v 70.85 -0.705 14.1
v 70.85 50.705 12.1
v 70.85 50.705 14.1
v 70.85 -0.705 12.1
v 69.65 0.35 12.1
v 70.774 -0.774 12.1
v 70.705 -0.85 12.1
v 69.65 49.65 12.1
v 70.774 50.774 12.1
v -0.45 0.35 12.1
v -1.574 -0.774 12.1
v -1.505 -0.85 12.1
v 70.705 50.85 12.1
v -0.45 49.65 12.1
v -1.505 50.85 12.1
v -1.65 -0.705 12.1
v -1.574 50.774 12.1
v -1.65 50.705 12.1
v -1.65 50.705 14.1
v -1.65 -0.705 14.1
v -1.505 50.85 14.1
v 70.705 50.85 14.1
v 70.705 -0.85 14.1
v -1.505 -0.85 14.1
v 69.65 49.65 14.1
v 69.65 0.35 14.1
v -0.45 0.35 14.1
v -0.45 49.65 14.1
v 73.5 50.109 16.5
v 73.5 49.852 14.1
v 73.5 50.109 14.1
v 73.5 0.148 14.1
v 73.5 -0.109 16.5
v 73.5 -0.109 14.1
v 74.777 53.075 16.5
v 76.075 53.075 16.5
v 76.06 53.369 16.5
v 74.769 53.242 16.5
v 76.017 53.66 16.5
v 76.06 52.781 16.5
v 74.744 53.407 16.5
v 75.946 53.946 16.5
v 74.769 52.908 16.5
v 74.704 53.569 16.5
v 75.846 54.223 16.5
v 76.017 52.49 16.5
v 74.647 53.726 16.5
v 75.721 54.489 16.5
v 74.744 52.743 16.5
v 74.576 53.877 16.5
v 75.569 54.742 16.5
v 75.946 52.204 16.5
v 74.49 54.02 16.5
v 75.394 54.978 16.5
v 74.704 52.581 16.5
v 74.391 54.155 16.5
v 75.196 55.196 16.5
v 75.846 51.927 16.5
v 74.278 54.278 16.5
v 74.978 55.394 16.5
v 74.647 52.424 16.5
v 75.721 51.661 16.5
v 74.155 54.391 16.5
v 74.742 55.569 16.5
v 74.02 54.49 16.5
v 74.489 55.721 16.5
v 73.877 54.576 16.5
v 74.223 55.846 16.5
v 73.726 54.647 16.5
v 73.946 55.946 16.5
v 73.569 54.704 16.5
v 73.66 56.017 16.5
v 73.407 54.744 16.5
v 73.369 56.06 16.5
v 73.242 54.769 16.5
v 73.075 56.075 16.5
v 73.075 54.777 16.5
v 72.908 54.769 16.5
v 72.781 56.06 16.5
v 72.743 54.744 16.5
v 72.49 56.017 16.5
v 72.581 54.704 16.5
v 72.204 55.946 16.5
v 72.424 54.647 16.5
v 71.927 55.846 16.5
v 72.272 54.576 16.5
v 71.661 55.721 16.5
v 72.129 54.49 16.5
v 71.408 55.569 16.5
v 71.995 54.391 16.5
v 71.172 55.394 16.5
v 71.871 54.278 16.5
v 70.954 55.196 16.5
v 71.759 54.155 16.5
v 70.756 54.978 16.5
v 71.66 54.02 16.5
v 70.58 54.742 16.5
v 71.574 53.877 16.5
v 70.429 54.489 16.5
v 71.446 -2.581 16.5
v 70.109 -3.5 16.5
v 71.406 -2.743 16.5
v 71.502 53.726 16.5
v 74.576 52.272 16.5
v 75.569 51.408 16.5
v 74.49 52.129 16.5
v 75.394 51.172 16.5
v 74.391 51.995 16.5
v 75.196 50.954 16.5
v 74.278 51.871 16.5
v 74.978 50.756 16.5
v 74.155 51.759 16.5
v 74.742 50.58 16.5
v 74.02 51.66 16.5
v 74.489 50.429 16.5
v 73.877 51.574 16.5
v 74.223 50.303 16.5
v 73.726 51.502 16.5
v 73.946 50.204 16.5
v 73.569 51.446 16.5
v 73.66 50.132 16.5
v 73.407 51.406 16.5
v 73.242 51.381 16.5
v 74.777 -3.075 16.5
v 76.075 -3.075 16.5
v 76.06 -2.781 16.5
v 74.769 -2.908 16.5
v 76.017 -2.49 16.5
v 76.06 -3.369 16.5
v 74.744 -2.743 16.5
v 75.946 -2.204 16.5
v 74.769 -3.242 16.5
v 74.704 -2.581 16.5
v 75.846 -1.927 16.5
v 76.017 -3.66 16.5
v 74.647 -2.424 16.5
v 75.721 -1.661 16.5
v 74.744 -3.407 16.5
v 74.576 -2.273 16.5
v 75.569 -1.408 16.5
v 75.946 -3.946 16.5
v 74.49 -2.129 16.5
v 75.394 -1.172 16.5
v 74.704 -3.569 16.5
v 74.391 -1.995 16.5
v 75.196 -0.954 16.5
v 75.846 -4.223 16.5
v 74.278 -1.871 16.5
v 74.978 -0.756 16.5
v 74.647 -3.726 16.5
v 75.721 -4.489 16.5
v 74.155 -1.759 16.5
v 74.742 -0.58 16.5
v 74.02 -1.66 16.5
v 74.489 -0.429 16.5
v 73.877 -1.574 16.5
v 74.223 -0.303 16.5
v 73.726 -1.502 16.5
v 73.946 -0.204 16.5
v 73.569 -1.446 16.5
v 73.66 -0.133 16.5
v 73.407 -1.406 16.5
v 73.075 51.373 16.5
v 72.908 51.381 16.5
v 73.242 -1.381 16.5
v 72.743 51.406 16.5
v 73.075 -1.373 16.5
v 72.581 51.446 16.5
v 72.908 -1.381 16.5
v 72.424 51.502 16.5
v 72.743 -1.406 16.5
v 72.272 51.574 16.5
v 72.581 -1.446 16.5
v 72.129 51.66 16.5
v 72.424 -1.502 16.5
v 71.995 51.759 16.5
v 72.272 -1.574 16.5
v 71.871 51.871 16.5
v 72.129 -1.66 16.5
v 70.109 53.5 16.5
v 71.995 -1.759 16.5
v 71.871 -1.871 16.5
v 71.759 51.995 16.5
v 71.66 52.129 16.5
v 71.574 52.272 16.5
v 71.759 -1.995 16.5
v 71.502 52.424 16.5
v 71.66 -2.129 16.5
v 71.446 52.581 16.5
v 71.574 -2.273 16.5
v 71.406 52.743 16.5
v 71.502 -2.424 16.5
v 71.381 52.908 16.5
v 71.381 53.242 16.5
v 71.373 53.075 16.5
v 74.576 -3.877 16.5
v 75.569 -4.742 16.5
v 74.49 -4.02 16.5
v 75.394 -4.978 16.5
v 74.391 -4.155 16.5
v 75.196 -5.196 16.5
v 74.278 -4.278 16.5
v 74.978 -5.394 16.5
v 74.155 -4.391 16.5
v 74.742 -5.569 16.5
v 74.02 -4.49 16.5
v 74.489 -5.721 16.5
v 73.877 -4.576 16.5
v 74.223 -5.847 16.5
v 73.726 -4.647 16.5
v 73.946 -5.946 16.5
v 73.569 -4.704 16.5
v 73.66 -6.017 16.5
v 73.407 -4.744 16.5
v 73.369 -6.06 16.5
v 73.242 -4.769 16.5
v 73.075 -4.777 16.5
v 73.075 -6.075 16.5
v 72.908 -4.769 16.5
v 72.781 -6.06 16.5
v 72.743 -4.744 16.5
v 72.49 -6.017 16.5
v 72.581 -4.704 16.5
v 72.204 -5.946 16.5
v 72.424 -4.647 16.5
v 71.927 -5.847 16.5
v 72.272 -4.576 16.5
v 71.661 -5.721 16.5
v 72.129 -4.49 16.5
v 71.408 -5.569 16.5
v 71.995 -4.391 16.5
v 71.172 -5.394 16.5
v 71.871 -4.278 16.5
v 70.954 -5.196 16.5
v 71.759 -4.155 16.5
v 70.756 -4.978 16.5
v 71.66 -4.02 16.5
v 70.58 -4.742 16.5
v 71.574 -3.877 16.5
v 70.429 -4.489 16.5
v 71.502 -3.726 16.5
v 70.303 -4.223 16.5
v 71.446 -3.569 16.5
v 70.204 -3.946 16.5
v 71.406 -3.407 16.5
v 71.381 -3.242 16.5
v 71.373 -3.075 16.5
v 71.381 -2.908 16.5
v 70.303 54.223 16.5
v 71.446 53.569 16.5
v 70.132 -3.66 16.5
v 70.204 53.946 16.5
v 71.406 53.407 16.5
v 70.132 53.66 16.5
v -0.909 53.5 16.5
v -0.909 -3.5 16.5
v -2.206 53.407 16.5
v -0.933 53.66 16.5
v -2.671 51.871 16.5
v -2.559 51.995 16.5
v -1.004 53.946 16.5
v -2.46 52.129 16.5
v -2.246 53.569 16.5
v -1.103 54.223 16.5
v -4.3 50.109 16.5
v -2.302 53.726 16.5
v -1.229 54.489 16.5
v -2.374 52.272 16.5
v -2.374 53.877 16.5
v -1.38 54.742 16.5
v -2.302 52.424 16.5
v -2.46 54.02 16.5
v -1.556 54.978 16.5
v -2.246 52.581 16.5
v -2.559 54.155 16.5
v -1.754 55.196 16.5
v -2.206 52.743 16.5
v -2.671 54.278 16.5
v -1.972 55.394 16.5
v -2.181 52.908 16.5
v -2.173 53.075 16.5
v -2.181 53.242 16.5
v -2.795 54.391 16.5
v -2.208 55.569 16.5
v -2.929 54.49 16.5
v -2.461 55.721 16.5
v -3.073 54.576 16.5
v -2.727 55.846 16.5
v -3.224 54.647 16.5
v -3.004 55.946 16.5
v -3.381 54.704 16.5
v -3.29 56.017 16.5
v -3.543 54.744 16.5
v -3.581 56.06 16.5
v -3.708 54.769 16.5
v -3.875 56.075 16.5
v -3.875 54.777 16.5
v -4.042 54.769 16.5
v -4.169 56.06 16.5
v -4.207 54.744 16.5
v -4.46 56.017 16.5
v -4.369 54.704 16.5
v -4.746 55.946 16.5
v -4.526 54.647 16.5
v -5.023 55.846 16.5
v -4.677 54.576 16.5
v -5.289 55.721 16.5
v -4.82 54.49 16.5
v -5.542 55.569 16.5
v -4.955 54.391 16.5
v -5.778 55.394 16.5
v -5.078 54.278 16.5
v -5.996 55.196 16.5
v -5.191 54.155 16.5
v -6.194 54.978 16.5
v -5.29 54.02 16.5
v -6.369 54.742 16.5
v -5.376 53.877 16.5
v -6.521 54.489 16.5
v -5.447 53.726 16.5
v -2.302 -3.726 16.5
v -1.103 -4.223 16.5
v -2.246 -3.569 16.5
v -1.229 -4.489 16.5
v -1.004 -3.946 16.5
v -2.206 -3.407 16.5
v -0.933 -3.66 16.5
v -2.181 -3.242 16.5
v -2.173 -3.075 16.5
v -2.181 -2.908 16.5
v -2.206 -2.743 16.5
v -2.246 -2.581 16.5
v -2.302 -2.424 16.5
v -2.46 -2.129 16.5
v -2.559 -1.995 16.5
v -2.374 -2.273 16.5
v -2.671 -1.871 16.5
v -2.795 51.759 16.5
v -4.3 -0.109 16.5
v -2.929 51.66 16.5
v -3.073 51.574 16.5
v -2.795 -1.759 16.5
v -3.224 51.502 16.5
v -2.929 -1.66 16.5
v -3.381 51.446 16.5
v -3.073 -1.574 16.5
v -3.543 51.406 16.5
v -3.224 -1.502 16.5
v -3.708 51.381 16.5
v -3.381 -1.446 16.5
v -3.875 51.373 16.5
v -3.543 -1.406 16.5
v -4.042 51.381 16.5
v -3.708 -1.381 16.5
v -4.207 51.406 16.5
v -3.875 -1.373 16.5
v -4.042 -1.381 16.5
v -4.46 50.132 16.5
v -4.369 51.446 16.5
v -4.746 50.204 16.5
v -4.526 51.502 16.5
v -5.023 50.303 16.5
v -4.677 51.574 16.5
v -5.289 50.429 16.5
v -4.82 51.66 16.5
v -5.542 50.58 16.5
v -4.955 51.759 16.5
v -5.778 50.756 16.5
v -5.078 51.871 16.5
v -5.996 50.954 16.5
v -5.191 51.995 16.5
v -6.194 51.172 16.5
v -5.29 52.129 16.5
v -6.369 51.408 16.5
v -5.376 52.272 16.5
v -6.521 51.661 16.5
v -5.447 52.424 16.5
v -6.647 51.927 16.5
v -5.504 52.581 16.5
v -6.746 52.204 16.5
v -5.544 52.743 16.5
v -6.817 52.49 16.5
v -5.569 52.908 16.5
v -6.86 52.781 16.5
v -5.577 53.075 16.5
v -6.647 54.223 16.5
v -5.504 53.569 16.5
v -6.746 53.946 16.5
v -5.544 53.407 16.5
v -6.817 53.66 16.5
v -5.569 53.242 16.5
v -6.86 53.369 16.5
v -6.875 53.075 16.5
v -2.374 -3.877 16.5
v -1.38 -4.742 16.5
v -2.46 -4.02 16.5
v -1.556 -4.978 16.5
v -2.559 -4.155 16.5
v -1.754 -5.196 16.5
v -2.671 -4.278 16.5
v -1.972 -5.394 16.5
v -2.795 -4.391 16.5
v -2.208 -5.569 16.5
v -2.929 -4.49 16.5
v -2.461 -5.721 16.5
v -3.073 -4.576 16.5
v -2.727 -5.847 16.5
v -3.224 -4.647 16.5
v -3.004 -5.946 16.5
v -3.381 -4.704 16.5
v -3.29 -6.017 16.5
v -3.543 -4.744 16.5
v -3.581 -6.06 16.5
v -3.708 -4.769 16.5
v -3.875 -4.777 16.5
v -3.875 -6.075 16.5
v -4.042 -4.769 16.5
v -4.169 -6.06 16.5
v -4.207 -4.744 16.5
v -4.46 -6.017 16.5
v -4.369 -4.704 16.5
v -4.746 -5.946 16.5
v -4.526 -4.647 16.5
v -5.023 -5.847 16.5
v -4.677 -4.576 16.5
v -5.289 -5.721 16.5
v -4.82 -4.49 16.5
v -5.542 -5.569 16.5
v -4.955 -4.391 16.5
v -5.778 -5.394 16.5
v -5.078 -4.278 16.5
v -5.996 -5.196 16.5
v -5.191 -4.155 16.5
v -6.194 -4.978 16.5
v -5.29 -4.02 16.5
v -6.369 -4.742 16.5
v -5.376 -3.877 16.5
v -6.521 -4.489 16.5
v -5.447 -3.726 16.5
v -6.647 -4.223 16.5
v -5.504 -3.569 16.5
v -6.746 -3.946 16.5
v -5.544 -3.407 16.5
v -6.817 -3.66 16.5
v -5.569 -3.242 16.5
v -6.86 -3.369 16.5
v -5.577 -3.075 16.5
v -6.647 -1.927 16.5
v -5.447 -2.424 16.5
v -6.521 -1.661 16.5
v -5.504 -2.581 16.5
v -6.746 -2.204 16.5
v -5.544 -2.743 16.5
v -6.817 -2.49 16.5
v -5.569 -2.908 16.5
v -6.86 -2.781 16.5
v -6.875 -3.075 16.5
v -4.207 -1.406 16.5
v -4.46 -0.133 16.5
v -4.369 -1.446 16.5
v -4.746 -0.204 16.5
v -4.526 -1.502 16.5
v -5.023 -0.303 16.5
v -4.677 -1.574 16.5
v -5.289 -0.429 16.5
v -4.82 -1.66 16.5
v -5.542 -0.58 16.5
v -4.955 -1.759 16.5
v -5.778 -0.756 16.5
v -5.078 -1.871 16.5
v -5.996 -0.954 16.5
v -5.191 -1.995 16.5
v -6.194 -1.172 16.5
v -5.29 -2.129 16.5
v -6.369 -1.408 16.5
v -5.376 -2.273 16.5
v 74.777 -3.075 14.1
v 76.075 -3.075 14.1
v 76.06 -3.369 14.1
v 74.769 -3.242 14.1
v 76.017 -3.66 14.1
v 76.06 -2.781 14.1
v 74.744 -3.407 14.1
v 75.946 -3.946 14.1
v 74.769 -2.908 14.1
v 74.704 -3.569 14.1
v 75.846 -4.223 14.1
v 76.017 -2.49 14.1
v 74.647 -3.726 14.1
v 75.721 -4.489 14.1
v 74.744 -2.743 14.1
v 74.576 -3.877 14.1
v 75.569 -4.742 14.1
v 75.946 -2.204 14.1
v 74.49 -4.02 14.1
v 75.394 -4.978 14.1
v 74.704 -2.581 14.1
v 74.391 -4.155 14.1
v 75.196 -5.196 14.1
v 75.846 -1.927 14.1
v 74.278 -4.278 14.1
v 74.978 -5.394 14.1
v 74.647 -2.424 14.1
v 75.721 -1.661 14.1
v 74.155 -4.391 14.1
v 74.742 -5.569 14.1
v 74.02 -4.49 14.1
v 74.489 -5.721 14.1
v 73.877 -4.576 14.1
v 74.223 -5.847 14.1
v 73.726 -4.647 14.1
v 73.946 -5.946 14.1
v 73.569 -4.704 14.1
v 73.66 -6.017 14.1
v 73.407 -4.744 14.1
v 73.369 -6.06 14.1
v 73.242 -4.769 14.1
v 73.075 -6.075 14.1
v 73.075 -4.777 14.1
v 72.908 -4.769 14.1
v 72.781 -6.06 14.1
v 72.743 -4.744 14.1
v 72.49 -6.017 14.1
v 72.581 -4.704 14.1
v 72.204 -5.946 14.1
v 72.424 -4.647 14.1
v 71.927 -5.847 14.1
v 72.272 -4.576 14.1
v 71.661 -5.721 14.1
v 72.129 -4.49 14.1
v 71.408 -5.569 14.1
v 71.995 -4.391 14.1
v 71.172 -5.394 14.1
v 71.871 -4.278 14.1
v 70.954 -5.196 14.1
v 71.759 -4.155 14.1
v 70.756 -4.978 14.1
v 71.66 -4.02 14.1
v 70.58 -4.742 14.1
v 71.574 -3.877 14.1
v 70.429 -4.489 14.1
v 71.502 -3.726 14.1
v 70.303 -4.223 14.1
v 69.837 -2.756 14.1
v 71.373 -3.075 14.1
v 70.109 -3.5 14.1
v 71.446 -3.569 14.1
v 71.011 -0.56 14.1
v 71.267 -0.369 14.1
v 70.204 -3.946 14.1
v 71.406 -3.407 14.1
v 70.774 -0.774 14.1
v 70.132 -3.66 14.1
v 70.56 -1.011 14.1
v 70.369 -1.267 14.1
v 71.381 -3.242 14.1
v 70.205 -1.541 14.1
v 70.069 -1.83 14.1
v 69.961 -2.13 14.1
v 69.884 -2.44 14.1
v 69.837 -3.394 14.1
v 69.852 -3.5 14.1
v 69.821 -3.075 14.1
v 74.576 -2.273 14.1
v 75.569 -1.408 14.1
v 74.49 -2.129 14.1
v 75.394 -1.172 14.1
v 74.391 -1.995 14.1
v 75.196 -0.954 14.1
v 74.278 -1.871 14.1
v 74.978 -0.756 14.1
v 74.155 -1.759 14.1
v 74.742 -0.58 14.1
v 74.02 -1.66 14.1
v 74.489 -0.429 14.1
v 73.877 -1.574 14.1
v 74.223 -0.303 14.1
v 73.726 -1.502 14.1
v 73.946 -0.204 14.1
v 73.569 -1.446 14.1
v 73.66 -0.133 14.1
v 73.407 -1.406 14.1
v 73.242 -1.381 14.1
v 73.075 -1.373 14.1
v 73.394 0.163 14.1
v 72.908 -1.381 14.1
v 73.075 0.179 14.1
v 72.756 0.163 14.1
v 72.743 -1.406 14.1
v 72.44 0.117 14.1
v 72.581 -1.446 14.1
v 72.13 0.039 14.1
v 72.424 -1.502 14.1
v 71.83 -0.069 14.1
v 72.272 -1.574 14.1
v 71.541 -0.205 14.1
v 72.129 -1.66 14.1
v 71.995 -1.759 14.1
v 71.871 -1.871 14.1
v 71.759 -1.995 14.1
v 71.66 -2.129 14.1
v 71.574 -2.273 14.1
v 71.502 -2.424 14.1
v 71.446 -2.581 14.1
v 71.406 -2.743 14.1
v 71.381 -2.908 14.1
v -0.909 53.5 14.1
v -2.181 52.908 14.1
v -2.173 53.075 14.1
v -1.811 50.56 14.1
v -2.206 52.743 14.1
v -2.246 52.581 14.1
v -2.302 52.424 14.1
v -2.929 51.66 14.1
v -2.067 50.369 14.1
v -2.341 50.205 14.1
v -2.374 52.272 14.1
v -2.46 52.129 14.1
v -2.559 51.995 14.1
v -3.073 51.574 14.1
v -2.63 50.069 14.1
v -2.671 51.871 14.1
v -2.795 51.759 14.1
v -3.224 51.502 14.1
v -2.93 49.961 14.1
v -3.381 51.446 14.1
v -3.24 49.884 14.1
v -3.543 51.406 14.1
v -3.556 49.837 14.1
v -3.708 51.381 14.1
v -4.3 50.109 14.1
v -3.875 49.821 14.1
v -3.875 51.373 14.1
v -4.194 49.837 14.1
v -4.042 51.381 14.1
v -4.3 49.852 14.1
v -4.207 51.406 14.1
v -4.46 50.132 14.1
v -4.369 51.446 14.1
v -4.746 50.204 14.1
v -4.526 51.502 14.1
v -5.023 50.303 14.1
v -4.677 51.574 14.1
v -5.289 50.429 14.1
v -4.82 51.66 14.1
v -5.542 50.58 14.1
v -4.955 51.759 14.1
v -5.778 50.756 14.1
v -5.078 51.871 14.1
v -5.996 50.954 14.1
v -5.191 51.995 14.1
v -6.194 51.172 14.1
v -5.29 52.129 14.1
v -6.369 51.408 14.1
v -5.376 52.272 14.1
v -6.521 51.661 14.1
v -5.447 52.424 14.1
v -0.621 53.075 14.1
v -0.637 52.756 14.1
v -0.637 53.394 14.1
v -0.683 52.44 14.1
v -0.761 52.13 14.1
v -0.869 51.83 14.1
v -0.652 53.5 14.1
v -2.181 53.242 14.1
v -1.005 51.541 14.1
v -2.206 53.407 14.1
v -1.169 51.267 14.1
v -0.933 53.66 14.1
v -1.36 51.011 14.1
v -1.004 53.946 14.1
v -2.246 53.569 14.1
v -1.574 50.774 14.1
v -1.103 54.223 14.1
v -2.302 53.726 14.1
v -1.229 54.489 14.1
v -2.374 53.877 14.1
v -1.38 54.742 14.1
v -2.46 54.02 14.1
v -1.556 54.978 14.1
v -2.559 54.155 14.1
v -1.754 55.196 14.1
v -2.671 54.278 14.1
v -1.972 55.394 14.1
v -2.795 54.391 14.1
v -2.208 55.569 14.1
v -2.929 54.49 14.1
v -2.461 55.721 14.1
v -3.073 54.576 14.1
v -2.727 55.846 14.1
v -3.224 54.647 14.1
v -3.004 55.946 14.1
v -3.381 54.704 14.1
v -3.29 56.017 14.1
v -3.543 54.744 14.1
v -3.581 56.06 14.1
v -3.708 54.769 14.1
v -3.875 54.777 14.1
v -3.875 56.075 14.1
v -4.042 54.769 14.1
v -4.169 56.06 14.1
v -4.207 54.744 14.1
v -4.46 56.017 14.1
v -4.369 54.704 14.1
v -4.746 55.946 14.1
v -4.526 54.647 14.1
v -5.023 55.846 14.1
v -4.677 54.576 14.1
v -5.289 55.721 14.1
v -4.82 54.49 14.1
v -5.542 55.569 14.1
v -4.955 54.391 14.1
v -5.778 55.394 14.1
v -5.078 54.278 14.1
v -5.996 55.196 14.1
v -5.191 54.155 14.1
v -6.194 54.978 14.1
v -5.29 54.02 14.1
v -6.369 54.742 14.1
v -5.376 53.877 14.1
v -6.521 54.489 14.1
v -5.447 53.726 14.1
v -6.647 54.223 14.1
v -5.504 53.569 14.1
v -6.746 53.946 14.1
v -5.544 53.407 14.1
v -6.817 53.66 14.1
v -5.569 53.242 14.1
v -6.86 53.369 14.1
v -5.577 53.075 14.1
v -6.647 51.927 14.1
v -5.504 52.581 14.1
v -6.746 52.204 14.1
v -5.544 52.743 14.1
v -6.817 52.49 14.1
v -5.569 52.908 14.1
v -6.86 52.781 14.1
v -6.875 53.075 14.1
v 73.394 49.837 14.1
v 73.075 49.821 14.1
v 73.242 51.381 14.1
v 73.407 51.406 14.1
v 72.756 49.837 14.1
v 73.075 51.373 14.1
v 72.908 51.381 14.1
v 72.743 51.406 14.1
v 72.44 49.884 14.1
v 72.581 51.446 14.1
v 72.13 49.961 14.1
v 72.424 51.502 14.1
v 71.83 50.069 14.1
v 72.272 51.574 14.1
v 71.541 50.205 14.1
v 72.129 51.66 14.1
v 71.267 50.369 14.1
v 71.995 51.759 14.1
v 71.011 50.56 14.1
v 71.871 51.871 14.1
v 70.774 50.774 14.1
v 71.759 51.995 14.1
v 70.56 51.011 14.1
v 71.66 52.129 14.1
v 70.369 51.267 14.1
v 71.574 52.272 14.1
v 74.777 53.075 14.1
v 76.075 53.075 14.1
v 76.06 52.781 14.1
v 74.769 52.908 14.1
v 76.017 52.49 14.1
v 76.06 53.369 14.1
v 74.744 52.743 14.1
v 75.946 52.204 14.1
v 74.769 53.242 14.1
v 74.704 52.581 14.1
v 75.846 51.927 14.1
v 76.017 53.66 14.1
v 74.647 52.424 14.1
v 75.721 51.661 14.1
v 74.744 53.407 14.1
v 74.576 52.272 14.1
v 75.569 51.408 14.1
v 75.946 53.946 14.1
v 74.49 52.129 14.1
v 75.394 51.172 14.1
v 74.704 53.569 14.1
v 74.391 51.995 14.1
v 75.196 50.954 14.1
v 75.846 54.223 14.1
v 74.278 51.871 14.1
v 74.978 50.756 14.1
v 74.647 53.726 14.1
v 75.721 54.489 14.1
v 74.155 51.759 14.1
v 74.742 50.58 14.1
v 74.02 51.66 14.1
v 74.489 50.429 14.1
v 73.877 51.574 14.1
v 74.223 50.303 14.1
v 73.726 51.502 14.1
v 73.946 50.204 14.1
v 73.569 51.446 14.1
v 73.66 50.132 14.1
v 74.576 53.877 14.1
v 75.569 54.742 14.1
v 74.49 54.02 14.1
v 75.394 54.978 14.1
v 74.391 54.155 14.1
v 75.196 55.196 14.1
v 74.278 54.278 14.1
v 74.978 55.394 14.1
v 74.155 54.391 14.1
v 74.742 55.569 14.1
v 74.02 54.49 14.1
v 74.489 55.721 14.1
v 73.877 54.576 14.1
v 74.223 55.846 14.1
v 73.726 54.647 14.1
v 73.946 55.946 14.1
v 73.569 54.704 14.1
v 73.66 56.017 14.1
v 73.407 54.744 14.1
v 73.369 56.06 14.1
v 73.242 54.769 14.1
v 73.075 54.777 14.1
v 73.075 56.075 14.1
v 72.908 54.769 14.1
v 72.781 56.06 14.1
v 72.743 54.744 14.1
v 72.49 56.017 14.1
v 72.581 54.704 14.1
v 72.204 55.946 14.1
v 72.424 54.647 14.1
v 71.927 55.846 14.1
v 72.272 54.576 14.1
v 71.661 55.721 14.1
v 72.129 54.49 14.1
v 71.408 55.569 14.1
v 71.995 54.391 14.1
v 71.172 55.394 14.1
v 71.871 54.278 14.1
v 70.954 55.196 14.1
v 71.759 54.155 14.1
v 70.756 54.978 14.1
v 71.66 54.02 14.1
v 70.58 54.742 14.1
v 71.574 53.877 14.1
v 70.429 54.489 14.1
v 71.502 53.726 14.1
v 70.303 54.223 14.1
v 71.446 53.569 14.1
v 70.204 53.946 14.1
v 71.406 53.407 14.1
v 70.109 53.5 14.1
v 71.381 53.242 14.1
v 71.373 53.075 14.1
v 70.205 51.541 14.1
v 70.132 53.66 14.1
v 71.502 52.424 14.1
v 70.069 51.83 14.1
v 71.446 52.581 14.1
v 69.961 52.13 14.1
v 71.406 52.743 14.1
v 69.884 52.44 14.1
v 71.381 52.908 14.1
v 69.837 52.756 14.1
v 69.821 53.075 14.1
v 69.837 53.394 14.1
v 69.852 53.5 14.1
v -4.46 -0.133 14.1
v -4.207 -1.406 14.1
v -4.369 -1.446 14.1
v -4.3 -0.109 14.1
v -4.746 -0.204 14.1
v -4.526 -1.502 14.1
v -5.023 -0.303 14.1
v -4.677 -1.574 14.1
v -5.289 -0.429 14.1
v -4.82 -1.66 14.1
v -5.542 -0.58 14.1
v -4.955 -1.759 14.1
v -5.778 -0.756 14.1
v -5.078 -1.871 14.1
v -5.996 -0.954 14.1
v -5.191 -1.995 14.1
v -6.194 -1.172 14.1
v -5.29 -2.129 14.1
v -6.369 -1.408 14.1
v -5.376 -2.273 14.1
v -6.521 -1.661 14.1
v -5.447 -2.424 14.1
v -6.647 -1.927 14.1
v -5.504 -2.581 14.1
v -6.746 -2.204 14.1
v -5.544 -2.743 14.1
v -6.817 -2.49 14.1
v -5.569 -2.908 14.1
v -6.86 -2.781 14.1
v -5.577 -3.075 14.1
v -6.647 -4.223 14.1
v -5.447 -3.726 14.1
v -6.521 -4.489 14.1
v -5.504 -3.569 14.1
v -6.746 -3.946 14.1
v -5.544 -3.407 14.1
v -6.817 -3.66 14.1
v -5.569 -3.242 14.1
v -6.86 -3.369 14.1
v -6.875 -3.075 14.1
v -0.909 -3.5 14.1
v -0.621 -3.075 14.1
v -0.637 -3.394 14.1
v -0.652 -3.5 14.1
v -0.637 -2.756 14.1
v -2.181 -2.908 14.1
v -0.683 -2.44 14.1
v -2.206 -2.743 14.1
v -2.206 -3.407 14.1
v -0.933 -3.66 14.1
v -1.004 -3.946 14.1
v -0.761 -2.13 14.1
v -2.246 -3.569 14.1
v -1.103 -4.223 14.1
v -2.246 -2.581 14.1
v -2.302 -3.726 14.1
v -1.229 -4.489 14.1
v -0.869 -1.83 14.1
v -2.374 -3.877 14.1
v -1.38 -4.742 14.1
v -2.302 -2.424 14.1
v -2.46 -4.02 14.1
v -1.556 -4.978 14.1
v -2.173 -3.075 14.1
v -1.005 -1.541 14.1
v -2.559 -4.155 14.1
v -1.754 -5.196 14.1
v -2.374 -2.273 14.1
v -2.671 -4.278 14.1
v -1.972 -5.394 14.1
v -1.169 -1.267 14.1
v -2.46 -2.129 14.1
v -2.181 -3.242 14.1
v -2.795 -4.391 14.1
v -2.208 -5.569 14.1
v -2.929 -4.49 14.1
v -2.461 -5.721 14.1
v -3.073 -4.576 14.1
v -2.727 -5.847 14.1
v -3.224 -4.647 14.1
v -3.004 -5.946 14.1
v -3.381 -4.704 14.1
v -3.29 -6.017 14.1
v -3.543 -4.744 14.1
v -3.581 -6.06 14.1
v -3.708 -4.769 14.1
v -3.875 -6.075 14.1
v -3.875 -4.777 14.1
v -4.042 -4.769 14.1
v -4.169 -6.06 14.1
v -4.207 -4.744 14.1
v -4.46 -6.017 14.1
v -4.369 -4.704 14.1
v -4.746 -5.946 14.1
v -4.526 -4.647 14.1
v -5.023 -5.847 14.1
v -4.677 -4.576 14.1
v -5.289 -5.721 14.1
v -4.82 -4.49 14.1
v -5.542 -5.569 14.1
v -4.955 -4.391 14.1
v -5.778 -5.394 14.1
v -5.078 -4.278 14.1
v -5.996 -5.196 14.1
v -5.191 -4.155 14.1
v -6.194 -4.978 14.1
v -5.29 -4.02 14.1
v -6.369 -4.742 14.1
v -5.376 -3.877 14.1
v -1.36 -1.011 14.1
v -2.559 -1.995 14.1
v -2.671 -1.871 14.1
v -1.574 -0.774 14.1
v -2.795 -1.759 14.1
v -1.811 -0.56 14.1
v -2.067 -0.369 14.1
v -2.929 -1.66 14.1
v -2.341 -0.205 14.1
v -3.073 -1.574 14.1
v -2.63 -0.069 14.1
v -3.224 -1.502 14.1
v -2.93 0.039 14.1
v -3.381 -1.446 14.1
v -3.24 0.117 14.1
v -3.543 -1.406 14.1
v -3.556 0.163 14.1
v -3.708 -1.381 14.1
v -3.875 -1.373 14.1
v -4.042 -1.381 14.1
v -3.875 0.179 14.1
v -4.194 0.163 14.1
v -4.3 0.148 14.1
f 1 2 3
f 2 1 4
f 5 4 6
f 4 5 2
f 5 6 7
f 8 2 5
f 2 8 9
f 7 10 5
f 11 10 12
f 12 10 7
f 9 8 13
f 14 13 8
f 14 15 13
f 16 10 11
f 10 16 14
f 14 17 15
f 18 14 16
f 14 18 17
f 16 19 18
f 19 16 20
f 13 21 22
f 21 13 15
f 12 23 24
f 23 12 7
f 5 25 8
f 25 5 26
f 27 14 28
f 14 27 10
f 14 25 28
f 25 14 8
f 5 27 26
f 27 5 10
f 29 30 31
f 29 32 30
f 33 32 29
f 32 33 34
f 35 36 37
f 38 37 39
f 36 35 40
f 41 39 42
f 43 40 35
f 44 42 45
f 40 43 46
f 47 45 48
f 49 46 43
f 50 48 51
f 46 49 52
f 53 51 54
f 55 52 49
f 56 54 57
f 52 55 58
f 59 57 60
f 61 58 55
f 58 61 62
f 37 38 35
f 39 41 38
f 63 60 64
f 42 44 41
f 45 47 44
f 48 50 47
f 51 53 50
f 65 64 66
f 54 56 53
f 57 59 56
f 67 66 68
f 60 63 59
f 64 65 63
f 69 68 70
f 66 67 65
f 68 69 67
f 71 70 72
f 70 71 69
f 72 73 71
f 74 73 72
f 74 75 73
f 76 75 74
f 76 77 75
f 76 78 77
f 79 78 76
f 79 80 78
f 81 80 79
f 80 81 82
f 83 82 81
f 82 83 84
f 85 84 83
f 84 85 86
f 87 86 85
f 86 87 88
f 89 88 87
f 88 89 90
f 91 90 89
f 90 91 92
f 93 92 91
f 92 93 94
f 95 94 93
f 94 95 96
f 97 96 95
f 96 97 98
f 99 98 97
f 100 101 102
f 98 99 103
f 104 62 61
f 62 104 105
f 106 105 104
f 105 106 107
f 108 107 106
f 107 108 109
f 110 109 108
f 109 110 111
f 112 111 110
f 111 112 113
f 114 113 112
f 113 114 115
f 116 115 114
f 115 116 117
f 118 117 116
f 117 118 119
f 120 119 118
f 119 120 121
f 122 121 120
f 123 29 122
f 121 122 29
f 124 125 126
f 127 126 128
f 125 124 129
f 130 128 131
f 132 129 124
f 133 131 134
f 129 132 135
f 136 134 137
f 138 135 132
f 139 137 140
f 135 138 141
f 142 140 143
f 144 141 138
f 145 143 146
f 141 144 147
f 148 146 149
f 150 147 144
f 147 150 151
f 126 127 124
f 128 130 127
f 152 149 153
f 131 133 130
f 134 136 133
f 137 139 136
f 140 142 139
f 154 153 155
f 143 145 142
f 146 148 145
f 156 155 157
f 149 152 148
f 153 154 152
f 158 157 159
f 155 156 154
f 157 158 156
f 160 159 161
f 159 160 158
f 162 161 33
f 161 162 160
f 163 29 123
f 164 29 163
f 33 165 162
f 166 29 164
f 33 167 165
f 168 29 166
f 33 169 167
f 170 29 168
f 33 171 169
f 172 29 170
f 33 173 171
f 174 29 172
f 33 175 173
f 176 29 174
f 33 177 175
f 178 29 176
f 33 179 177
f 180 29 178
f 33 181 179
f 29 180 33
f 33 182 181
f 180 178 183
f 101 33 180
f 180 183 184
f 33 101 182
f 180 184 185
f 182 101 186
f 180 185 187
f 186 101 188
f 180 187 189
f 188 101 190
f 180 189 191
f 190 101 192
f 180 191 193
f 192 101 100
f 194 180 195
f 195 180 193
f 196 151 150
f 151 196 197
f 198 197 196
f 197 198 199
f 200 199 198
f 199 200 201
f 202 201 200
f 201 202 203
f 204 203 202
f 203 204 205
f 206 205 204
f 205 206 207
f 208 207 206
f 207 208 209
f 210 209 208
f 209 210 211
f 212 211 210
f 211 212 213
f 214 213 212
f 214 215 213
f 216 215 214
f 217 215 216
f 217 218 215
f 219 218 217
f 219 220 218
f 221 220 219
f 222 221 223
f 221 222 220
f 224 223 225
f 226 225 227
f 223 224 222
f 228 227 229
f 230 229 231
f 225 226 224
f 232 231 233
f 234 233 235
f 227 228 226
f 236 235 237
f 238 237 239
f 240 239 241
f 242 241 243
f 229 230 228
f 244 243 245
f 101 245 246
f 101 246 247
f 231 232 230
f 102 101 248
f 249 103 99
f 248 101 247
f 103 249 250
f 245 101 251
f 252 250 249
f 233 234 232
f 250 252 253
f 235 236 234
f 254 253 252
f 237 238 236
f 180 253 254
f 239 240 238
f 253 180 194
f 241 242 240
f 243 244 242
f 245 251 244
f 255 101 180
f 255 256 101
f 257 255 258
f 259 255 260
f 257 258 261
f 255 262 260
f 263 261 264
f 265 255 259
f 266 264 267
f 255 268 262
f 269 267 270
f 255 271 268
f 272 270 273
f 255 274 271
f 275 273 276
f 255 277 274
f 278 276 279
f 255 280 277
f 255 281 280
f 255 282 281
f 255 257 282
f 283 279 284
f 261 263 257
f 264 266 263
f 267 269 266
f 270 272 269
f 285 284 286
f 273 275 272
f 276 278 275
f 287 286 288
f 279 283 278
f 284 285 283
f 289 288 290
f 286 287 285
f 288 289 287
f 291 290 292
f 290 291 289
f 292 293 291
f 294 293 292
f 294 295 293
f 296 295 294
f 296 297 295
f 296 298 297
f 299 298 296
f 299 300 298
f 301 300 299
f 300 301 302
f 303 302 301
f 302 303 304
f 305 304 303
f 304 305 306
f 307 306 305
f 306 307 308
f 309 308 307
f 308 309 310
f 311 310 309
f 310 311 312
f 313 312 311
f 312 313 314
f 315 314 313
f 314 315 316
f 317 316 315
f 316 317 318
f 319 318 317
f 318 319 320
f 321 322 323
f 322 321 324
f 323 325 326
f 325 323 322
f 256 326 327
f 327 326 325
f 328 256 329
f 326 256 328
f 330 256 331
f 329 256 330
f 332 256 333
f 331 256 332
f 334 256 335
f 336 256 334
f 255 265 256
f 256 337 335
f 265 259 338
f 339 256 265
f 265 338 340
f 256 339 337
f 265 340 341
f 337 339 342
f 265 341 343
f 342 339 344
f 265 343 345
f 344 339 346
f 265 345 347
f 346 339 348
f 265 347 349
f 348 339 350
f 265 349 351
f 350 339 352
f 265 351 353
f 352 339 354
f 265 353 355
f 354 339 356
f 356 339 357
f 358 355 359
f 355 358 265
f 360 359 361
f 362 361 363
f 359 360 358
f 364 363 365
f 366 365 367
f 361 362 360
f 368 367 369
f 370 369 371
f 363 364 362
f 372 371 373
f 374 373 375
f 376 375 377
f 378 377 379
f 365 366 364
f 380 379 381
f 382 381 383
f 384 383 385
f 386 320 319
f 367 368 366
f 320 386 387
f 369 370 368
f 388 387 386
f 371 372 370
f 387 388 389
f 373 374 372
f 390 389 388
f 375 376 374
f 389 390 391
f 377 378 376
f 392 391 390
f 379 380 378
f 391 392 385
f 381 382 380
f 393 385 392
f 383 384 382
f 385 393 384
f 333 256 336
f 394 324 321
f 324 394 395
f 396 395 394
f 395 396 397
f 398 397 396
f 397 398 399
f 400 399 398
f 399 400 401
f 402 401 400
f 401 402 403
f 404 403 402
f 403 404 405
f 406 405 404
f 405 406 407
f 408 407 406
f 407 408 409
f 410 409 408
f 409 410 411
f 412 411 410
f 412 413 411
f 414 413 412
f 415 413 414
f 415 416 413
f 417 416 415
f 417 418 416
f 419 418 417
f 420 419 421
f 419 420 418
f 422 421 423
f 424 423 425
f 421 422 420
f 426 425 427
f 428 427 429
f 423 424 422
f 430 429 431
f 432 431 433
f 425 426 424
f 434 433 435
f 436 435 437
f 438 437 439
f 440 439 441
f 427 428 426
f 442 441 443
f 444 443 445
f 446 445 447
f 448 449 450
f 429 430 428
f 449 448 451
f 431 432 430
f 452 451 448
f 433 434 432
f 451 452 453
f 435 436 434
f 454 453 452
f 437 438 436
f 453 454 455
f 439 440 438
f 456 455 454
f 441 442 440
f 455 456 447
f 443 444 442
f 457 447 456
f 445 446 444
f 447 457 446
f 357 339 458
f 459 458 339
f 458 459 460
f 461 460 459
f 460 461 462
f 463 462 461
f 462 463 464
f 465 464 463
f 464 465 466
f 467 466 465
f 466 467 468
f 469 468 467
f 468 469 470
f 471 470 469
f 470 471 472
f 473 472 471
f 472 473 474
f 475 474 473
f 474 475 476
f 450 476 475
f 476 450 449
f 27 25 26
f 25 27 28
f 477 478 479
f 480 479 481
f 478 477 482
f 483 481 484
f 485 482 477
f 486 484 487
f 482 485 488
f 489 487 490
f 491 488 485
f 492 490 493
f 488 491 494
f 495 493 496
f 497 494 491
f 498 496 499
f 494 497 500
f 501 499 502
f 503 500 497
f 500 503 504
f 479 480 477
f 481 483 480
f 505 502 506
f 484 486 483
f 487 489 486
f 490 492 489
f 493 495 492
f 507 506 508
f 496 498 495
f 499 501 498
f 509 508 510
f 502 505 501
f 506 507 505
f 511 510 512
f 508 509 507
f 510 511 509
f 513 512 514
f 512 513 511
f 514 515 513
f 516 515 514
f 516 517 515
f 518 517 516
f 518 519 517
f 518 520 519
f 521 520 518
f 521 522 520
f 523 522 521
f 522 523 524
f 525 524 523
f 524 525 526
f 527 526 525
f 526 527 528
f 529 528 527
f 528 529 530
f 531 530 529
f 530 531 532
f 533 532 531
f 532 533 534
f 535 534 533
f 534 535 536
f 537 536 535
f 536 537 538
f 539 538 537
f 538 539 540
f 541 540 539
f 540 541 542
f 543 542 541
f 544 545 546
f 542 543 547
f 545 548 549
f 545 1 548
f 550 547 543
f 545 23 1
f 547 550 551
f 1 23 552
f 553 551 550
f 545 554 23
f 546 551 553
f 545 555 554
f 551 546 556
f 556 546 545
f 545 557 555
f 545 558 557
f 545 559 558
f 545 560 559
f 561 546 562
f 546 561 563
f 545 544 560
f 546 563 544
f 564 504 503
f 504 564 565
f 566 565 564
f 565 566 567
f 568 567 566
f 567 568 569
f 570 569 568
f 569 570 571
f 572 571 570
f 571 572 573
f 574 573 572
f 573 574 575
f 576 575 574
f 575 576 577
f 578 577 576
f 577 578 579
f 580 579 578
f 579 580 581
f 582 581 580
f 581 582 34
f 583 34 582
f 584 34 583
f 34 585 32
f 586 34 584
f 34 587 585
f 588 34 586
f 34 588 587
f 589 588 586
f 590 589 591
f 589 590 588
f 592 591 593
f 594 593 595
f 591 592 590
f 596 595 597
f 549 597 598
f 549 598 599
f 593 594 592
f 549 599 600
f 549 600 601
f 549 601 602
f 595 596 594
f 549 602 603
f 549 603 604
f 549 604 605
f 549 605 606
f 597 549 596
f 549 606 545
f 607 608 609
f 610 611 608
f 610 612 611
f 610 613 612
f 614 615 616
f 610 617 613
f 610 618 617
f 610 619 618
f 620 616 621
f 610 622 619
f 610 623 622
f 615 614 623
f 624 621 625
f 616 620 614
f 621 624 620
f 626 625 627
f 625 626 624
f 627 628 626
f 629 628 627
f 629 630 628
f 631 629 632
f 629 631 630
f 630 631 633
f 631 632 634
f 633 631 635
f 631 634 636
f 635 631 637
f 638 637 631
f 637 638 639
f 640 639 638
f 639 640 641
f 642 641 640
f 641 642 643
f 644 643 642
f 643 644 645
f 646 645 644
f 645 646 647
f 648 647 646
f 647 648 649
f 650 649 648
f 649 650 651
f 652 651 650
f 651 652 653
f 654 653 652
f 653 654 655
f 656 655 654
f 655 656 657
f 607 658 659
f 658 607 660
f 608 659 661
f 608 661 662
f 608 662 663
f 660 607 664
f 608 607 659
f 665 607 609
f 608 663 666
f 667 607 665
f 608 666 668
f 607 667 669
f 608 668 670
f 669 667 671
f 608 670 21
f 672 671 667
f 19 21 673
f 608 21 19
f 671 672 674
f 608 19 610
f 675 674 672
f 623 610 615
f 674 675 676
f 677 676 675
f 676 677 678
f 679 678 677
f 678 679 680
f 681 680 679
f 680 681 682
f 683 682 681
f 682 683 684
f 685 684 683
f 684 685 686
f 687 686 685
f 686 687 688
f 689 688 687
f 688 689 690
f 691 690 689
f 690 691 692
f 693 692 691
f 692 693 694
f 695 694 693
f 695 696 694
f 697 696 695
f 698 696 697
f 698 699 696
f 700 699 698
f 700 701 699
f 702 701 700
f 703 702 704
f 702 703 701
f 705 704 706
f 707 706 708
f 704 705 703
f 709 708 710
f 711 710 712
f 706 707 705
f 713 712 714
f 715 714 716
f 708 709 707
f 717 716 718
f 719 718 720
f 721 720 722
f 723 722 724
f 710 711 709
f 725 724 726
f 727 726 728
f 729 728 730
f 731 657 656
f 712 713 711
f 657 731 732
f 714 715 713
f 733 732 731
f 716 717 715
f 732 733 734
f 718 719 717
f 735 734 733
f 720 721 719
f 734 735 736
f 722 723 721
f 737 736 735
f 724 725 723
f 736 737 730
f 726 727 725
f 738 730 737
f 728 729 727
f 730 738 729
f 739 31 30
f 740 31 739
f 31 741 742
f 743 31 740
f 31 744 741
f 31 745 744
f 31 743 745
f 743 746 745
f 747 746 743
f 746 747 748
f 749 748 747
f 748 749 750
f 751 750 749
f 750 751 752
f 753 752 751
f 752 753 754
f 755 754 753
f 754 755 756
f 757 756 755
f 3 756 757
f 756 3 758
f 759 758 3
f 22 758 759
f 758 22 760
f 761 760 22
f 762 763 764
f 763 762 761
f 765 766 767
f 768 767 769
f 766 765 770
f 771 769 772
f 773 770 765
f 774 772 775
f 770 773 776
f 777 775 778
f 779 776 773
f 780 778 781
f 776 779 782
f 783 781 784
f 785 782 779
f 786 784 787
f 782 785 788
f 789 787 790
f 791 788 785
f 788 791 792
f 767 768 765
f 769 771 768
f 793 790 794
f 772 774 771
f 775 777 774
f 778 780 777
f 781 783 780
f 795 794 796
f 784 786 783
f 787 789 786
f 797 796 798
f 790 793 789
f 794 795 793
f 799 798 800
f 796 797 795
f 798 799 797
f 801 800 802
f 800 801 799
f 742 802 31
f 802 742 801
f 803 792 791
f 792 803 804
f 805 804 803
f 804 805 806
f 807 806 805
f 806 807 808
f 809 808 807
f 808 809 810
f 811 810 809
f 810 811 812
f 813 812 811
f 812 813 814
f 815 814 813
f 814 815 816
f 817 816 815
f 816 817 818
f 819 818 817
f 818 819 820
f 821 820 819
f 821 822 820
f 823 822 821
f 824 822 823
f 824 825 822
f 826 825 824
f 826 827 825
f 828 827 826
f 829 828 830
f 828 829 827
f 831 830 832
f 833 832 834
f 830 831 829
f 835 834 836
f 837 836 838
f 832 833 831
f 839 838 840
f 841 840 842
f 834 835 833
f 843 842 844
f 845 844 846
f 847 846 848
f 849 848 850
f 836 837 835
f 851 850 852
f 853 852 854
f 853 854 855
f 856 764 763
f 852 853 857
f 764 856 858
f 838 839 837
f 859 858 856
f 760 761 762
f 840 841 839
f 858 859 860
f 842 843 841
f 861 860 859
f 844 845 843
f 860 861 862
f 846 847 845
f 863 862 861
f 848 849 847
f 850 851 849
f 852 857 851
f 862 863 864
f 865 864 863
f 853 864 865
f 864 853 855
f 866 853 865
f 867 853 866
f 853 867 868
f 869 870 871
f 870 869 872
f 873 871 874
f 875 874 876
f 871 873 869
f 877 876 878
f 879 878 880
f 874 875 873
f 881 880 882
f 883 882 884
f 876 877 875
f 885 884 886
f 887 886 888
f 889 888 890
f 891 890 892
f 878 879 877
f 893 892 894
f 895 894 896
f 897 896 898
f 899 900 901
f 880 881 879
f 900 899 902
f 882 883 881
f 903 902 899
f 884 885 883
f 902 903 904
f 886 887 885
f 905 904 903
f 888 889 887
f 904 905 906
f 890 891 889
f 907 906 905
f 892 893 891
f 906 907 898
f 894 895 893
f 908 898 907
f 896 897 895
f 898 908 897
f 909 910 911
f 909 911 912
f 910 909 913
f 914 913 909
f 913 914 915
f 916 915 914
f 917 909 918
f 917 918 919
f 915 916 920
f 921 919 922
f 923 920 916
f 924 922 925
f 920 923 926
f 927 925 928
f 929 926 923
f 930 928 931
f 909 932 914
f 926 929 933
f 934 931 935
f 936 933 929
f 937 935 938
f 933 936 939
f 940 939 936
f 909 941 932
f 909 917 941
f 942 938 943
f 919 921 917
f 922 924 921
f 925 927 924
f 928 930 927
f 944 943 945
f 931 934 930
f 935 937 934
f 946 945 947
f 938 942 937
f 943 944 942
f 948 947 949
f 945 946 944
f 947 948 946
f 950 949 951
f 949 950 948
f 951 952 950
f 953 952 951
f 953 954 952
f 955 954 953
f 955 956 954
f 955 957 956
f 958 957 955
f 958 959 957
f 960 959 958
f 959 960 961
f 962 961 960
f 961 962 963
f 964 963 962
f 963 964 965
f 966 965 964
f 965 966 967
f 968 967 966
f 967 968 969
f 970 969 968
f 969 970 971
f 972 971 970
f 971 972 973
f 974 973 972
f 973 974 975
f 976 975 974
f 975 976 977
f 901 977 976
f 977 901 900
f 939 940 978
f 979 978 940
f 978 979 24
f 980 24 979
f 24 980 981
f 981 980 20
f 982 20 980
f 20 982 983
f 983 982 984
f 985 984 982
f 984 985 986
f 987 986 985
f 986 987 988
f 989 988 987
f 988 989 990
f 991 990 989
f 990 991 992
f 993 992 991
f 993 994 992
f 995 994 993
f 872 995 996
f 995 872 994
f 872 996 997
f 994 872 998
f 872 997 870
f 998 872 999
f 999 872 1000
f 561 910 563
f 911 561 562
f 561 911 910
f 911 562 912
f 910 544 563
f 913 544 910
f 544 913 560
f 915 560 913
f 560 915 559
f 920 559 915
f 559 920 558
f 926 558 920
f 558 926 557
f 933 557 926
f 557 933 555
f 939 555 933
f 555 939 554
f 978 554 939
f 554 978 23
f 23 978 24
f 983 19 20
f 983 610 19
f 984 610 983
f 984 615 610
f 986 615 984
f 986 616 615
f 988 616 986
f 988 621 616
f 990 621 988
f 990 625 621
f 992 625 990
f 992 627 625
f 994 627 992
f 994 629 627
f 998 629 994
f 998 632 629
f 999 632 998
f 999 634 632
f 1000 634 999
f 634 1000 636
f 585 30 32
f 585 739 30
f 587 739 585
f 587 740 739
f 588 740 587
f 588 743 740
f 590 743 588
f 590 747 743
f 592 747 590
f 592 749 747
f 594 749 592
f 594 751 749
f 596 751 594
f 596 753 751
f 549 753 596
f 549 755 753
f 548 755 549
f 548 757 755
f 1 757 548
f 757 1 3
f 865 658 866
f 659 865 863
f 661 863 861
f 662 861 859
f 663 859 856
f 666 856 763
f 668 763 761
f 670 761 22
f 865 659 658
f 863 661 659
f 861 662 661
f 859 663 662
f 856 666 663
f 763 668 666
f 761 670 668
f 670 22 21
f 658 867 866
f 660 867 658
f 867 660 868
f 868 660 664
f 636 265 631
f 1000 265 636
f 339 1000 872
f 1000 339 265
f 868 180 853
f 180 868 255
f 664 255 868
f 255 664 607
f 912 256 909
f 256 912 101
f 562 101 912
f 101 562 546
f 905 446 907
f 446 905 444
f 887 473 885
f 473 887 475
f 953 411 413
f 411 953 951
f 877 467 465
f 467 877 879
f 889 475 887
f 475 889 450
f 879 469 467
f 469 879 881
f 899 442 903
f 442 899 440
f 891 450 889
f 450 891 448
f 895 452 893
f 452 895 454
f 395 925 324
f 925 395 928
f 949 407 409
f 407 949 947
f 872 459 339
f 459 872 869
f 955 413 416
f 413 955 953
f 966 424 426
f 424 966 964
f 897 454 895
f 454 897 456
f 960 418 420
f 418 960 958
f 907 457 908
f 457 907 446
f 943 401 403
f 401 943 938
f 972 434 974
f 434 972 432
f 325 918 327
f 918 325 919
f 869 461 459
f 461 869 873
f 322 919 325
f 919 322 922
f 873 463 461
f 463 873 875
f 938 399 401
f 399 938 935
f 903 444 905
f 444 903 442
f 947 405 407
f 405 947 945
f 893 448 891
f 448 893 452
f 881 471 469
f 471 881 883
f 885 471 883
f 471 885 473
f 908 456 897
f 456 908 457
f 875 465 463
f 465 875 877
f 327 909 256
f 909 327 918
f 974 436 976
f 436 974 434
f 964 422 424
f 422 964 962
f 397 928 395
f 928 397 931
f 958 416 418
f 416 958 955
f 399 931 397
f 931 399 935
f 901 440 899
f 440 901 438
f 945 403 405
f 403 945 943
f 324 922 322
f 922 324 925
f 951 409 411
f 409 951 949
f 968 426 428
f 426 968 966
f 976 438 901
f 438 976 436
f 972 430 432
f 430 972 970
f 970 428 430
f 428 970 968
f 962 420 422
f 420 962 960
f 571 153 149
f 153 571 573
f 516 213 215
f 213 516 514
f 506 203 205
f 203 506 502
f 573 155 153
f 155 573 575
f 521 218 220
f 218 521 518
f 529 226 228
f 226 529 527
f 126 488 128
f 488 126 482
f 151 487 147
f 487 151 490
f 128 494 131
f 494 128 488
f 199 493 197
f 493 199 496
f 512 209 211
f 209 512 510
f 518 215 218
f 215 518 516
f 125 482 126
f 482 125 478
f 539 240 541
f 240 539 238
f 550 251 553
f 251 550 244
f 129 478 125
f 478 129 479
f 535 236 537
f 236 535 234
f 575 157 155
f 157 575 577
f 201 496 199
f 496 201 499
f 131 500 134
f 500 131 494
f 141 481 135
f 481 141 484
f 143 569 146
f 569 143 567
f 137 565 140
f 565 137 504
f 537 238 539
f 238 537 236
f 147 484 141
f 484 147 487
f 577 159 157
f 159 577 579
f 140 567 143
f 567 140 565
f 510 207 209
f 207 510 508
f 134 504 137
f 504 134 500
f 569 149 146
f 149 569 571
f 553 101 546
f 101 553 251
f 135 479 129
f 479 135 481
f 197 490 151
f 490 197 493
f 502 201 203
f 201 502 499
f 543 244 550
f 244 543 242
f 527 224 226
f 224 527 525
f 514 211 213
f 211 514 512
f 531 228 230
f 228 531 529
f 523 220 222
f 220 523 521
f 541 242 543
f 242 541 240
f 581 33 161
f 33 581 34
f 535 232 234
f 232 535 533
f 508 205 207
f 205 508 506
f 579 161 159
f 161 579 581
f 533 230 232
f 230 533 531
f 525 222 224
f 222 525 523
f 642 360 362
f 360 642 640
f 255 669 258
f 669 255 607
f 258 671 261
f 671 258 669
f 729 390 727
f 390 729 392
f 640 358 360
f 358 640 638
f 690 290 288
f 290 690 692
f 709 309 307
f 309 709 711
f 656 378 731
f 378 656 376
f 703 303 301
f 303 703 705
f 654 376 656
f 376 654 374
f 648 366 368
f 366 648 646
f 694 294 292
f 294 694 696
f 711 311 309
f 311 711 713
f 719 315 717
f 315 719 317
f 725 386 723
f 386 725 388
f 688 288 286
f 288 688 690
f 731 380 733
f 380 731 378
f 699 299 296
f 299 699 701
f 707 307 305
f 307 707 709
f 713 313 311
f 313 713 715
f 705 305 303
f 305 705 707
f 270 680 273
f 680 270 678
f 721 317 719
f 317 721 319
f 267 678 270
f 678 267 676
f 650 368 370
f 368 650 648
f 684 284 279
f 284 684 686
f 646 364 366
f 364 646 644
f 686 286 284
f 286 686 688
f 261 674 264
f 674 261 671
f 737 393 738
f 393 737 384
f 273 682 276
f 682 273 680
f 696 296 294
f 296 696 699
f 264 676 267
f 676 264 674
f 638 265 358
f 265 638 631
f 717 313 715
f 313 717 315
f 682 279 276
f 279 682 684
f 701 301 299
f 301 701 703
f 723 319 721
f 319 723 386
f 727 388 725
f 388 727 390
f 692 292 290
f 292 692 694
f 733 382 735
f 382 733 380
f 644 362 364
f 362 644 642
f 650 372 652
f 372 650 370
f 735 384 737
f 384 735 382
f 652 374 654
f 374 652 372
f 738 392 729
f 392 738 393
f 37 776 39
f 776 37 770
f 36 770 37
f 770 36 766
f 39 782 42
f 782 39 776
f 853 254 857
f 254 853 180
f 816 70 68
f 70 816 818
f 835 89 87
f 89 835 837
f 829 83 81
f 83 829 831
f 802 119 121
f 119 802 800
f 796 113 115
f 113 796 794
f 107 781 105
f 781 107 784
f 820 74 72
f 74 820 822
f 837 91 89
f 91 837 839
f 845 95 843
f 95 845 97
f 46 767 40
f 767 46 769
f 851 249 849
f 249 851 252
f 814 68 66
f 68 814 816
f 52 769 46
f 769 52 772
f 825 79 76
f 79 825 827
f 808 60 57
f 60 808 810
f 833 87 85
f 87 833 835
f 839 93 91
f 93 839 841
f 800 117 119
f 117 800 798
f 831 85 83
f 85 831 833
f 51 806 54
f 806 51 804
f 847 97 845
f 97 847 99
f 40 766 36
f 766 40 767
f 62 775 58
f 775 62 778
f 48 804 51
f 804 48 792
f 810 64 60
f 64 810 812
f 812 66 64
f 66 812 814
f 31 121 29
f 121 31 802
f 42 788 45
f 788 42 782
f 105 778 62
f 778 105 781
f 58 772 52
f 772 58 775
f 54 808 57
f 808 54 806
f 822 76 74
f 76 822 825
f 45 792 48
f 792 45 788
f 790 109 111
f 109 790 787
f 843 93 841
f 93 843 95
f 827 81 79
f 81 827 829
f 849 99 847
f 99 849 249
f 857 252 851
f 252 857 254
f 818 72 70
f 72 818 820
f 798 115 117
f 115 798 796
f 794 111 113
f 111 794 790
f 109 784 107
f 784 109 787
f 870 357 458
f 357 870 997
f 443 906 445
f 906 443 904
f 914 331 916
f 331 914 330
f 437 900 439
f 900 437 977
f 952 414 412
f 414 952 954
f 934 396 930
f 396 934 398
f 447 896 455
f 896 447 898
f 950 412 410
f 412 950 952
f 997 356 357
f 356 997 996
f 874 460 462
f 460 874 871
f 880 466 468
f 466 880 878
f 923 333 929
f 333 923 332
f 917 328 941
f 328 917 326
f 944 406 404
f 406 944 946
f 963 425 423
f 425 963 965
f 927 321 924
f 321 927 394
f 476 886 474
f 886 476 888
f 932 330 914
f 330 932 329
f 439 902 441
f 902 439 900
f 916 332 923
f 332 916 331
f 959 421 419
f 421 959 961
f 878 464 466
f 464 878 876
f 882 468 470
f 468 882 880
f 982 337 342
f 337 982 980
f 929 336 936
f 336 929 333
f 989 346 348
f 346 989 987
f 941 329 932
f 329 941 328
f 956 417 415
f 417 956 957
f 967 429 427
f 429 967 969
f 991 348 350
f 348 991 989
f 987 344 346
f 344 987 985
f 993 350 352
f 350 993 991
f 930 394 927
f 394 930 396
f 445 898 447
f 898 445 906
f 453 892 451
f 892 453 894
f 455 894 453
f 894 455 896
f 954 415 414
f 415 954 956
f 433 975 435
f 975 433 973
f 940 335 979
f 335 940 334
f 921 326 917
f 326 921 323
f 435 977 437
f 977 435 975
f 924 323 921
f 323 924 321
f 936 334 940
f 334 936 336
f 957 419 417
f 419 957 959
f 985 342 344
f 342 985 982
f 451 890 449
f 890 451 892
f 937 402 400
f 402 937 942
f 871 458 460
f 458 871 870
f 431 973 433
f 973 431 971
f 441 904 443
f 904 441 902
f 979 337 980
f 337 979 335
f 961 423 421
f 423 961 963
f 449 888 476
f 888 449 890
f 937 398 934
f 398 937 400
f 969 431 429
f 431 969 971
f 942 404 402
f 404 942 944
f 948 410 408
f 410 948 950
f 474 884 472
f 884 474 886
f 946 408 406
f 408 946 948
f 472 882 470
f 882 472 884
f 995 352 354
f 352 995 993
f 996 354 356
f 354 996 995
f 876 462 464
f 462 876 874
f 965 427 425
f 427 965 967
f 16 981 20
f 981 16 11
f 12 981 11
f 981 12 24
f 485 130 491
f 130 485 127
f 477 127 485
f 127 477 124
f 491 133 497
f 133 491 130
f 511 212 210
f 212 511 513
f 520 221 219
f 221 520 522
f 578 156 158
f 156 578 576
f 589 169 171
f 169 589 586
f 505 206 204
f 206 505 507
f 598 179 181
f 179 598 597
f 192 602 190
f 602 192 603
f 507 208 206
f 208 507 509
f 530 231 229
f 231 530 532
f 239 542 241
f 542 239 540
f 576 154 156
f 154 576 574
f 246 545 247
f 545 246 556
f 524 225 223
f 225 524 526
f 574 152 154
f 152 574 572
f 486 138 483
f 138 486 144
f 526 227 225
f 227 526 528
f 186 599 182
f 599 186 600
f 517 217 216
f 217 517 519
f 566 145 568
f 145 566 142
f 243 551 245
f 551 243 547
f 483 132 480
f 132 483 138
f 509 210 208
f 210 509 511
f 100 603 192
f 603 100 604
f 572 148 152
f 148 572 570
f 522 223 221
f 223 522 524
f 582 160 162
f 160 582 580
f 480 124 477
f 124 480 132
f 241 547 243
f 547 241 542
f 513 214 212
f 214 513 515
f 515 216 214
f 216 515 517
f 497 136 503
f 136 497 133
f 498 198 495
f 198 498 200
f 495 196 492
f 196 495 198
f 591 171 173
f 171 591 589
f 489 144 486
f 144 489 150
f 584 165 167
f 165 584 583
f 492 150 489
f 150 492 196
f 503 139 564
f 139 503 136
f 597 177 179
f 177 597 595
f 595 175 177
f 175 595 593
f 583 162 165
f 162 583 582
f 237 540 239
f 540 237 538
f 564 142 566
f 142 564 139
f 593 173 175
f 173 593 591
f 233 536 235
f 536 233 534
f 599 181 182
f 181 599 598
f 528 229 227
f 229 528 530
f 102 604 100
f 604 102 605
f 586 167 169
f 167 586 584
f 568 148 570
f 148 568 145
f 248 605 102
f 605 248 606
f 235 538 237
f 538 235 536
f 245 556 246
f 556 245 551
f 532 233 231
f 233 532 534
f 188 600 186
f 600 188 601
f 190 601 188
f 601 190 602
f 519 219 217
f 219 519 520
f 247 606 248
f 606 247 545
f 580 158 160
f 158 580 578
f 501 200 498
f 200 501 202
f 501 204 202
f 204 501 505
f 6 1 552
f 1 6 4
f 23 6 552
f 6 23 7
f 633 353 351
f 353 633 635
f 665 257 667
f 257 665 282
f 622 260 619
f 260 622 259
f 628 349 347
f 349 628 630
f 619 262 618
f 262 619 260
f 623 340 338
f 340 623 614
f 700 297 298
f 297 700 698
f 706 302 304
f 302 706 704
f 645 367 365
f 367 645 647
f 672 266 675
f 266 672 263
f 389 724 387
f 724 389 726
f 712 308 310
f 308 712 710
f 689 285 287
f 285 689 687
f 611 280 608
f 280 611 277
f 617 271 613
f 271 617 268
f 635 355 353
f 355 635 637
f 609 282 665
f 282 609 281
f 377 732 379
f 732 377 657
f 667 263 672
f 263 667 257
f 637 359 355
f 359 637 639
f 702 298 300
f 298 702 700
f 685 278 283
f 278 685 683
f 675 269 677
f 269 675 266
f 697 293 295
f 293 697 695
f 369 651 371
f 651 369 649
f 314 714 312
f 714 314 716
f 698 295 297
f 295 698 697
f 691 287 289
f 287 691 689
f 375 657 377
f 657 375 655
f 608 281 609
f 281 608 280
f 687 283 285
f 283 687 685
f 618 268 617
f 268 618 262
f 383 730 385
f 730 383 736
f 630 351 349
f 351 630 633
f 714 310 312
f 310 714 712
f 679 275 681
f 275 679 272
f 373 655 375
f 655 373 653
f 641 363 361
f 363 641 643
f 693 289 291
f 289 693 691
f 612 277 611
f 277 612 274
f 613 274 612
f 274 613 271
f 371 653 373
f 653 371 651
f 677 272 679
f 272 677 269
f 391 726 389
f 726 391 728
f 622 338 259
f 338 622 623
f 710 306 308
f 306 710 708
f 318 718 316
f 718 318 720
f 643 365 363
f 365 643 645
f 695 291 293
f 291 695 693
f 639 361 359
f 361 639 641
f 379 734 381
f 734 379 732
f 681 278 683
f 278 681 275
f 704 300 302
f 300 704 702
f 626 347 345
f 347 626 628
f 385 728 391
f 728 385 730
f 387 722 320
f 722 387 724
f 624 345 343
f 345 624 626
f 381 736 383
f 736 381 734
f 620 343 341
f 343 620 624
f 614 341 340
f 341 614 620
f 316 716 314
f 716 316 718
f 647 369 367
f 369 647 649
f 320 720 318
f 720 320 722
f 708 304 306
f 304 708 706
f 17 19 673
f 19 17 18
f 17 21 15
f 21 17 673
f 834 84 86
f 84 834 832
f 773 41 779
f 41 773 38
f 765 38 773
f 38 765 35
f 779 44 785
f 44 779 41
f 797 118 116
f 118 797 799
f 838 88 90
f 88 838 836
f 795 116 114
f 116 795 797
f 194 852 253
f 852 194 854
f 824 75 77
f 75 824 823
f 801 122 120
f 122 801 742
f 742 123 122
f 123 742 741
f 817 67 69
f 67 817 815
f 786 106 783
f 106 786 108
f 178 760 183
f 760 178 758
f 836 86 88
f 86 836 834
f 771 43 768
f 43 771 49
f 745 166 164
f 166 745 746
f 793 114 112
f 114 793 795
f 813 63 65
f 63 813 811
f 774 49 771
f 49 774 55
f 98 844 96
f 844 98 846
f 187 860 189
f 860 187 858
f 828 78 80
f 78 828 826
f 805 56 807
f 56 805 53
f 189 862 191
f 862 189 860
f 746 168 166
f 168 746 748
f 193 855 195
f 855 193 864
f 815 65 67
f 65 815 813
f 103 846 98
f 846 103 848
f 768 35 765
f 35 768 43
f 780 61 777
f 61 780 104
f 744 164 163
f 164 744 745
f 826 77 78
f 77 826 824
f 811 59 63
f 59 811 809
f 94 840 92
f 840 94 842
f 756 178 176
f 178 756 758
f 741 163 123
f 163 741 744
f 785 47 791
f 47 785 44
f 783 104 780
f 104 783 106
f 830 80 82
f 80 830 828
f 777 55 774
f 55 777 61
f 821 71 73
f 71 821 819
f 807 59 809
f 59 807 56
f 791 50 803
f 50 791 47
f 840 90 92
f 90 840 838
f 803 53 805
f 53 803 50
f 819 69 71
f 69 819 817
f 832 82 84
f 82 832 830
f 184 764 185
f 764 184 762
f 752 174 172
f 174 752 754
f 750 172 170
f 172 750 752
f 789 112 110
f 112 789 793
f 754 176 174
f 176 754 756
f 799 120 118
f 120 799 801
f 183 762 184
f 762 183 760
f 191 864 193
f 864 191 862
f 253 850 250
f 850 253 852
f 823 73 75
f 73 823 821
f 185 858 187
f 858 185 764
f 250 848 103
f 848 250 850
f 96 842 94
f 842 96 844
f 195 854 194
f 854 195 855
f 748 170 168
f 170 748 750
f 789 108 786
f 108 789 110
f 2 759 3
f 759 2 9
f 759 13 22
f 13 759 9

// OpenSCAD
// body lid
difference() {
  union() {
    // body lid (lid_plate)
    multmatrix([[1, 0, 0, 34.6], [0, 1, 0, 25], [0, 0, 1, 14.1], [0, 0, 0, 1]]) translate([-38.9, -28.5, 0]) cube([77.8, 57, 2.4]);
    // add lid_lip (lip)
    multmatrix([[1, 0, 0, 34.6], [0, 1, 0, 25], [0, 0, 1, 12.1], [0, 0, 0, 1]]) difference() { translate([-36.25, -25.85, 0]) cube([72.5, 51.7, 4.4]); translate([0, 0, -1]) translate([-35.05, -24.65, 0]) cube([70.1, 49.3, 6.4]); }
    // add boss_1_pad (pad)
    multmatrix([[1, 0, 0, -3.874874], [0, 1, 0, -3.074874], [0, 0, 1, 14.1], [0, 0, 0, 1]]) cylinder(h=2.4, d=6, $fn=64);
    // add boss_2_pad (pad)
    multmatrix([[1, 0, 0, 73.074874], [0, 1, 0, -3.074874], [0, 0, 1, 14.1], [0, 0, 0, 1]]) cylinder(h=2.4, d=6, $fn=64);
    // add boss_3_pad (pad)
    multmatrix([[1, 0, 0, -3.874874], [0, 1, 0, 53.074874], [0, 0, 1, 14.1], [0, 0, 0, 1]]) cylinder(h=2.4, d=6, $fn=64);
    // add boss_4_pad (pad)
    multmatrix([[1, 0, 0, 73.074874], [0, 1, 0, 53.074874], [0, 0, 1, 14.1], [0, 0, 0, 1]]) cylinder(h=2.4, d=6, $fn=64);
  }
  // cut boss_1_lid_hole (screw_hole)
  multmatrix([[1, 0, 0, -3.874874], [0, 1, 0, -3.074874], [0, 0, 1, 13.1], [0, 0, 0, 1]]) cylinder(h=4.4, d=3.4041, $fn=64);
  // cut boss_1_lip_notch (lip_notch)
  multmatrix([[1, 0, 0, -3.874874], [0, 1, 0, -3.074874], [0, 0, 1, 11.1], [0, 0, 0, 1]]) cylinder(h=3, d=6.507839, $fn=64);
  // cut boss_2_lid_hole (screw_hole)
  multmatrix([[1, 0, 0, 73.074874], [0, 1, 0, -3.074874], [0, 0, 1, 13.1], [0, 0, 0, 1]]) cylinder(h=4.4, d=3.4041, $fn=64);
  // cut boss_2_lip_notch (lip_notch)
  multmatrix([[1, 0, 0, 73.074874], [0, 1, 0, -3.074874], [0, 0, 1, 11.1], [0, 0, 0, 1]]) cylinder(h=3, d=6.507839, $fn=64);
  // cut boss_3_lid_hole (screw_hole)
  multmatrix([[1, 0, 0, -3.874874], [0, 1, 0, 53.074874], [0, 0, 1, 13.1], [0, 0, 0, 1]]) cylinder(h=4.4, d=3.4041, $fn=64);
  // cut boss_3_lip_notch (lip_notch)
  multmatrix([[1, 0, 0, -3.874874], [0, 1, 0, 53.074874], [0, 0, 1, 11.1], [0, 0, 0, 1]]) cylinder(h=3, d=6.507839, $fn=64);
  // cut boss_4_lid_hole (screw_hole)
  multmatrix([[1, 0, 0, 73.074874], [0, 1, 0, 53.074874], [0, 0, 1, 13.1], [0, 0, 0, 1]]) cylinder(h=4.4, d=3.4041, $fn=64);
  // cut boss_4_lip_notch (lip_notch)
  multmatrix([[1, 0, 0, 73.074874], [0, 1, 0, 53.074874], [0, 0, 1, 11.1], [0, 0, 0, 1]]) cylinder(h=3, d=6.507839, $fn=64);
}
